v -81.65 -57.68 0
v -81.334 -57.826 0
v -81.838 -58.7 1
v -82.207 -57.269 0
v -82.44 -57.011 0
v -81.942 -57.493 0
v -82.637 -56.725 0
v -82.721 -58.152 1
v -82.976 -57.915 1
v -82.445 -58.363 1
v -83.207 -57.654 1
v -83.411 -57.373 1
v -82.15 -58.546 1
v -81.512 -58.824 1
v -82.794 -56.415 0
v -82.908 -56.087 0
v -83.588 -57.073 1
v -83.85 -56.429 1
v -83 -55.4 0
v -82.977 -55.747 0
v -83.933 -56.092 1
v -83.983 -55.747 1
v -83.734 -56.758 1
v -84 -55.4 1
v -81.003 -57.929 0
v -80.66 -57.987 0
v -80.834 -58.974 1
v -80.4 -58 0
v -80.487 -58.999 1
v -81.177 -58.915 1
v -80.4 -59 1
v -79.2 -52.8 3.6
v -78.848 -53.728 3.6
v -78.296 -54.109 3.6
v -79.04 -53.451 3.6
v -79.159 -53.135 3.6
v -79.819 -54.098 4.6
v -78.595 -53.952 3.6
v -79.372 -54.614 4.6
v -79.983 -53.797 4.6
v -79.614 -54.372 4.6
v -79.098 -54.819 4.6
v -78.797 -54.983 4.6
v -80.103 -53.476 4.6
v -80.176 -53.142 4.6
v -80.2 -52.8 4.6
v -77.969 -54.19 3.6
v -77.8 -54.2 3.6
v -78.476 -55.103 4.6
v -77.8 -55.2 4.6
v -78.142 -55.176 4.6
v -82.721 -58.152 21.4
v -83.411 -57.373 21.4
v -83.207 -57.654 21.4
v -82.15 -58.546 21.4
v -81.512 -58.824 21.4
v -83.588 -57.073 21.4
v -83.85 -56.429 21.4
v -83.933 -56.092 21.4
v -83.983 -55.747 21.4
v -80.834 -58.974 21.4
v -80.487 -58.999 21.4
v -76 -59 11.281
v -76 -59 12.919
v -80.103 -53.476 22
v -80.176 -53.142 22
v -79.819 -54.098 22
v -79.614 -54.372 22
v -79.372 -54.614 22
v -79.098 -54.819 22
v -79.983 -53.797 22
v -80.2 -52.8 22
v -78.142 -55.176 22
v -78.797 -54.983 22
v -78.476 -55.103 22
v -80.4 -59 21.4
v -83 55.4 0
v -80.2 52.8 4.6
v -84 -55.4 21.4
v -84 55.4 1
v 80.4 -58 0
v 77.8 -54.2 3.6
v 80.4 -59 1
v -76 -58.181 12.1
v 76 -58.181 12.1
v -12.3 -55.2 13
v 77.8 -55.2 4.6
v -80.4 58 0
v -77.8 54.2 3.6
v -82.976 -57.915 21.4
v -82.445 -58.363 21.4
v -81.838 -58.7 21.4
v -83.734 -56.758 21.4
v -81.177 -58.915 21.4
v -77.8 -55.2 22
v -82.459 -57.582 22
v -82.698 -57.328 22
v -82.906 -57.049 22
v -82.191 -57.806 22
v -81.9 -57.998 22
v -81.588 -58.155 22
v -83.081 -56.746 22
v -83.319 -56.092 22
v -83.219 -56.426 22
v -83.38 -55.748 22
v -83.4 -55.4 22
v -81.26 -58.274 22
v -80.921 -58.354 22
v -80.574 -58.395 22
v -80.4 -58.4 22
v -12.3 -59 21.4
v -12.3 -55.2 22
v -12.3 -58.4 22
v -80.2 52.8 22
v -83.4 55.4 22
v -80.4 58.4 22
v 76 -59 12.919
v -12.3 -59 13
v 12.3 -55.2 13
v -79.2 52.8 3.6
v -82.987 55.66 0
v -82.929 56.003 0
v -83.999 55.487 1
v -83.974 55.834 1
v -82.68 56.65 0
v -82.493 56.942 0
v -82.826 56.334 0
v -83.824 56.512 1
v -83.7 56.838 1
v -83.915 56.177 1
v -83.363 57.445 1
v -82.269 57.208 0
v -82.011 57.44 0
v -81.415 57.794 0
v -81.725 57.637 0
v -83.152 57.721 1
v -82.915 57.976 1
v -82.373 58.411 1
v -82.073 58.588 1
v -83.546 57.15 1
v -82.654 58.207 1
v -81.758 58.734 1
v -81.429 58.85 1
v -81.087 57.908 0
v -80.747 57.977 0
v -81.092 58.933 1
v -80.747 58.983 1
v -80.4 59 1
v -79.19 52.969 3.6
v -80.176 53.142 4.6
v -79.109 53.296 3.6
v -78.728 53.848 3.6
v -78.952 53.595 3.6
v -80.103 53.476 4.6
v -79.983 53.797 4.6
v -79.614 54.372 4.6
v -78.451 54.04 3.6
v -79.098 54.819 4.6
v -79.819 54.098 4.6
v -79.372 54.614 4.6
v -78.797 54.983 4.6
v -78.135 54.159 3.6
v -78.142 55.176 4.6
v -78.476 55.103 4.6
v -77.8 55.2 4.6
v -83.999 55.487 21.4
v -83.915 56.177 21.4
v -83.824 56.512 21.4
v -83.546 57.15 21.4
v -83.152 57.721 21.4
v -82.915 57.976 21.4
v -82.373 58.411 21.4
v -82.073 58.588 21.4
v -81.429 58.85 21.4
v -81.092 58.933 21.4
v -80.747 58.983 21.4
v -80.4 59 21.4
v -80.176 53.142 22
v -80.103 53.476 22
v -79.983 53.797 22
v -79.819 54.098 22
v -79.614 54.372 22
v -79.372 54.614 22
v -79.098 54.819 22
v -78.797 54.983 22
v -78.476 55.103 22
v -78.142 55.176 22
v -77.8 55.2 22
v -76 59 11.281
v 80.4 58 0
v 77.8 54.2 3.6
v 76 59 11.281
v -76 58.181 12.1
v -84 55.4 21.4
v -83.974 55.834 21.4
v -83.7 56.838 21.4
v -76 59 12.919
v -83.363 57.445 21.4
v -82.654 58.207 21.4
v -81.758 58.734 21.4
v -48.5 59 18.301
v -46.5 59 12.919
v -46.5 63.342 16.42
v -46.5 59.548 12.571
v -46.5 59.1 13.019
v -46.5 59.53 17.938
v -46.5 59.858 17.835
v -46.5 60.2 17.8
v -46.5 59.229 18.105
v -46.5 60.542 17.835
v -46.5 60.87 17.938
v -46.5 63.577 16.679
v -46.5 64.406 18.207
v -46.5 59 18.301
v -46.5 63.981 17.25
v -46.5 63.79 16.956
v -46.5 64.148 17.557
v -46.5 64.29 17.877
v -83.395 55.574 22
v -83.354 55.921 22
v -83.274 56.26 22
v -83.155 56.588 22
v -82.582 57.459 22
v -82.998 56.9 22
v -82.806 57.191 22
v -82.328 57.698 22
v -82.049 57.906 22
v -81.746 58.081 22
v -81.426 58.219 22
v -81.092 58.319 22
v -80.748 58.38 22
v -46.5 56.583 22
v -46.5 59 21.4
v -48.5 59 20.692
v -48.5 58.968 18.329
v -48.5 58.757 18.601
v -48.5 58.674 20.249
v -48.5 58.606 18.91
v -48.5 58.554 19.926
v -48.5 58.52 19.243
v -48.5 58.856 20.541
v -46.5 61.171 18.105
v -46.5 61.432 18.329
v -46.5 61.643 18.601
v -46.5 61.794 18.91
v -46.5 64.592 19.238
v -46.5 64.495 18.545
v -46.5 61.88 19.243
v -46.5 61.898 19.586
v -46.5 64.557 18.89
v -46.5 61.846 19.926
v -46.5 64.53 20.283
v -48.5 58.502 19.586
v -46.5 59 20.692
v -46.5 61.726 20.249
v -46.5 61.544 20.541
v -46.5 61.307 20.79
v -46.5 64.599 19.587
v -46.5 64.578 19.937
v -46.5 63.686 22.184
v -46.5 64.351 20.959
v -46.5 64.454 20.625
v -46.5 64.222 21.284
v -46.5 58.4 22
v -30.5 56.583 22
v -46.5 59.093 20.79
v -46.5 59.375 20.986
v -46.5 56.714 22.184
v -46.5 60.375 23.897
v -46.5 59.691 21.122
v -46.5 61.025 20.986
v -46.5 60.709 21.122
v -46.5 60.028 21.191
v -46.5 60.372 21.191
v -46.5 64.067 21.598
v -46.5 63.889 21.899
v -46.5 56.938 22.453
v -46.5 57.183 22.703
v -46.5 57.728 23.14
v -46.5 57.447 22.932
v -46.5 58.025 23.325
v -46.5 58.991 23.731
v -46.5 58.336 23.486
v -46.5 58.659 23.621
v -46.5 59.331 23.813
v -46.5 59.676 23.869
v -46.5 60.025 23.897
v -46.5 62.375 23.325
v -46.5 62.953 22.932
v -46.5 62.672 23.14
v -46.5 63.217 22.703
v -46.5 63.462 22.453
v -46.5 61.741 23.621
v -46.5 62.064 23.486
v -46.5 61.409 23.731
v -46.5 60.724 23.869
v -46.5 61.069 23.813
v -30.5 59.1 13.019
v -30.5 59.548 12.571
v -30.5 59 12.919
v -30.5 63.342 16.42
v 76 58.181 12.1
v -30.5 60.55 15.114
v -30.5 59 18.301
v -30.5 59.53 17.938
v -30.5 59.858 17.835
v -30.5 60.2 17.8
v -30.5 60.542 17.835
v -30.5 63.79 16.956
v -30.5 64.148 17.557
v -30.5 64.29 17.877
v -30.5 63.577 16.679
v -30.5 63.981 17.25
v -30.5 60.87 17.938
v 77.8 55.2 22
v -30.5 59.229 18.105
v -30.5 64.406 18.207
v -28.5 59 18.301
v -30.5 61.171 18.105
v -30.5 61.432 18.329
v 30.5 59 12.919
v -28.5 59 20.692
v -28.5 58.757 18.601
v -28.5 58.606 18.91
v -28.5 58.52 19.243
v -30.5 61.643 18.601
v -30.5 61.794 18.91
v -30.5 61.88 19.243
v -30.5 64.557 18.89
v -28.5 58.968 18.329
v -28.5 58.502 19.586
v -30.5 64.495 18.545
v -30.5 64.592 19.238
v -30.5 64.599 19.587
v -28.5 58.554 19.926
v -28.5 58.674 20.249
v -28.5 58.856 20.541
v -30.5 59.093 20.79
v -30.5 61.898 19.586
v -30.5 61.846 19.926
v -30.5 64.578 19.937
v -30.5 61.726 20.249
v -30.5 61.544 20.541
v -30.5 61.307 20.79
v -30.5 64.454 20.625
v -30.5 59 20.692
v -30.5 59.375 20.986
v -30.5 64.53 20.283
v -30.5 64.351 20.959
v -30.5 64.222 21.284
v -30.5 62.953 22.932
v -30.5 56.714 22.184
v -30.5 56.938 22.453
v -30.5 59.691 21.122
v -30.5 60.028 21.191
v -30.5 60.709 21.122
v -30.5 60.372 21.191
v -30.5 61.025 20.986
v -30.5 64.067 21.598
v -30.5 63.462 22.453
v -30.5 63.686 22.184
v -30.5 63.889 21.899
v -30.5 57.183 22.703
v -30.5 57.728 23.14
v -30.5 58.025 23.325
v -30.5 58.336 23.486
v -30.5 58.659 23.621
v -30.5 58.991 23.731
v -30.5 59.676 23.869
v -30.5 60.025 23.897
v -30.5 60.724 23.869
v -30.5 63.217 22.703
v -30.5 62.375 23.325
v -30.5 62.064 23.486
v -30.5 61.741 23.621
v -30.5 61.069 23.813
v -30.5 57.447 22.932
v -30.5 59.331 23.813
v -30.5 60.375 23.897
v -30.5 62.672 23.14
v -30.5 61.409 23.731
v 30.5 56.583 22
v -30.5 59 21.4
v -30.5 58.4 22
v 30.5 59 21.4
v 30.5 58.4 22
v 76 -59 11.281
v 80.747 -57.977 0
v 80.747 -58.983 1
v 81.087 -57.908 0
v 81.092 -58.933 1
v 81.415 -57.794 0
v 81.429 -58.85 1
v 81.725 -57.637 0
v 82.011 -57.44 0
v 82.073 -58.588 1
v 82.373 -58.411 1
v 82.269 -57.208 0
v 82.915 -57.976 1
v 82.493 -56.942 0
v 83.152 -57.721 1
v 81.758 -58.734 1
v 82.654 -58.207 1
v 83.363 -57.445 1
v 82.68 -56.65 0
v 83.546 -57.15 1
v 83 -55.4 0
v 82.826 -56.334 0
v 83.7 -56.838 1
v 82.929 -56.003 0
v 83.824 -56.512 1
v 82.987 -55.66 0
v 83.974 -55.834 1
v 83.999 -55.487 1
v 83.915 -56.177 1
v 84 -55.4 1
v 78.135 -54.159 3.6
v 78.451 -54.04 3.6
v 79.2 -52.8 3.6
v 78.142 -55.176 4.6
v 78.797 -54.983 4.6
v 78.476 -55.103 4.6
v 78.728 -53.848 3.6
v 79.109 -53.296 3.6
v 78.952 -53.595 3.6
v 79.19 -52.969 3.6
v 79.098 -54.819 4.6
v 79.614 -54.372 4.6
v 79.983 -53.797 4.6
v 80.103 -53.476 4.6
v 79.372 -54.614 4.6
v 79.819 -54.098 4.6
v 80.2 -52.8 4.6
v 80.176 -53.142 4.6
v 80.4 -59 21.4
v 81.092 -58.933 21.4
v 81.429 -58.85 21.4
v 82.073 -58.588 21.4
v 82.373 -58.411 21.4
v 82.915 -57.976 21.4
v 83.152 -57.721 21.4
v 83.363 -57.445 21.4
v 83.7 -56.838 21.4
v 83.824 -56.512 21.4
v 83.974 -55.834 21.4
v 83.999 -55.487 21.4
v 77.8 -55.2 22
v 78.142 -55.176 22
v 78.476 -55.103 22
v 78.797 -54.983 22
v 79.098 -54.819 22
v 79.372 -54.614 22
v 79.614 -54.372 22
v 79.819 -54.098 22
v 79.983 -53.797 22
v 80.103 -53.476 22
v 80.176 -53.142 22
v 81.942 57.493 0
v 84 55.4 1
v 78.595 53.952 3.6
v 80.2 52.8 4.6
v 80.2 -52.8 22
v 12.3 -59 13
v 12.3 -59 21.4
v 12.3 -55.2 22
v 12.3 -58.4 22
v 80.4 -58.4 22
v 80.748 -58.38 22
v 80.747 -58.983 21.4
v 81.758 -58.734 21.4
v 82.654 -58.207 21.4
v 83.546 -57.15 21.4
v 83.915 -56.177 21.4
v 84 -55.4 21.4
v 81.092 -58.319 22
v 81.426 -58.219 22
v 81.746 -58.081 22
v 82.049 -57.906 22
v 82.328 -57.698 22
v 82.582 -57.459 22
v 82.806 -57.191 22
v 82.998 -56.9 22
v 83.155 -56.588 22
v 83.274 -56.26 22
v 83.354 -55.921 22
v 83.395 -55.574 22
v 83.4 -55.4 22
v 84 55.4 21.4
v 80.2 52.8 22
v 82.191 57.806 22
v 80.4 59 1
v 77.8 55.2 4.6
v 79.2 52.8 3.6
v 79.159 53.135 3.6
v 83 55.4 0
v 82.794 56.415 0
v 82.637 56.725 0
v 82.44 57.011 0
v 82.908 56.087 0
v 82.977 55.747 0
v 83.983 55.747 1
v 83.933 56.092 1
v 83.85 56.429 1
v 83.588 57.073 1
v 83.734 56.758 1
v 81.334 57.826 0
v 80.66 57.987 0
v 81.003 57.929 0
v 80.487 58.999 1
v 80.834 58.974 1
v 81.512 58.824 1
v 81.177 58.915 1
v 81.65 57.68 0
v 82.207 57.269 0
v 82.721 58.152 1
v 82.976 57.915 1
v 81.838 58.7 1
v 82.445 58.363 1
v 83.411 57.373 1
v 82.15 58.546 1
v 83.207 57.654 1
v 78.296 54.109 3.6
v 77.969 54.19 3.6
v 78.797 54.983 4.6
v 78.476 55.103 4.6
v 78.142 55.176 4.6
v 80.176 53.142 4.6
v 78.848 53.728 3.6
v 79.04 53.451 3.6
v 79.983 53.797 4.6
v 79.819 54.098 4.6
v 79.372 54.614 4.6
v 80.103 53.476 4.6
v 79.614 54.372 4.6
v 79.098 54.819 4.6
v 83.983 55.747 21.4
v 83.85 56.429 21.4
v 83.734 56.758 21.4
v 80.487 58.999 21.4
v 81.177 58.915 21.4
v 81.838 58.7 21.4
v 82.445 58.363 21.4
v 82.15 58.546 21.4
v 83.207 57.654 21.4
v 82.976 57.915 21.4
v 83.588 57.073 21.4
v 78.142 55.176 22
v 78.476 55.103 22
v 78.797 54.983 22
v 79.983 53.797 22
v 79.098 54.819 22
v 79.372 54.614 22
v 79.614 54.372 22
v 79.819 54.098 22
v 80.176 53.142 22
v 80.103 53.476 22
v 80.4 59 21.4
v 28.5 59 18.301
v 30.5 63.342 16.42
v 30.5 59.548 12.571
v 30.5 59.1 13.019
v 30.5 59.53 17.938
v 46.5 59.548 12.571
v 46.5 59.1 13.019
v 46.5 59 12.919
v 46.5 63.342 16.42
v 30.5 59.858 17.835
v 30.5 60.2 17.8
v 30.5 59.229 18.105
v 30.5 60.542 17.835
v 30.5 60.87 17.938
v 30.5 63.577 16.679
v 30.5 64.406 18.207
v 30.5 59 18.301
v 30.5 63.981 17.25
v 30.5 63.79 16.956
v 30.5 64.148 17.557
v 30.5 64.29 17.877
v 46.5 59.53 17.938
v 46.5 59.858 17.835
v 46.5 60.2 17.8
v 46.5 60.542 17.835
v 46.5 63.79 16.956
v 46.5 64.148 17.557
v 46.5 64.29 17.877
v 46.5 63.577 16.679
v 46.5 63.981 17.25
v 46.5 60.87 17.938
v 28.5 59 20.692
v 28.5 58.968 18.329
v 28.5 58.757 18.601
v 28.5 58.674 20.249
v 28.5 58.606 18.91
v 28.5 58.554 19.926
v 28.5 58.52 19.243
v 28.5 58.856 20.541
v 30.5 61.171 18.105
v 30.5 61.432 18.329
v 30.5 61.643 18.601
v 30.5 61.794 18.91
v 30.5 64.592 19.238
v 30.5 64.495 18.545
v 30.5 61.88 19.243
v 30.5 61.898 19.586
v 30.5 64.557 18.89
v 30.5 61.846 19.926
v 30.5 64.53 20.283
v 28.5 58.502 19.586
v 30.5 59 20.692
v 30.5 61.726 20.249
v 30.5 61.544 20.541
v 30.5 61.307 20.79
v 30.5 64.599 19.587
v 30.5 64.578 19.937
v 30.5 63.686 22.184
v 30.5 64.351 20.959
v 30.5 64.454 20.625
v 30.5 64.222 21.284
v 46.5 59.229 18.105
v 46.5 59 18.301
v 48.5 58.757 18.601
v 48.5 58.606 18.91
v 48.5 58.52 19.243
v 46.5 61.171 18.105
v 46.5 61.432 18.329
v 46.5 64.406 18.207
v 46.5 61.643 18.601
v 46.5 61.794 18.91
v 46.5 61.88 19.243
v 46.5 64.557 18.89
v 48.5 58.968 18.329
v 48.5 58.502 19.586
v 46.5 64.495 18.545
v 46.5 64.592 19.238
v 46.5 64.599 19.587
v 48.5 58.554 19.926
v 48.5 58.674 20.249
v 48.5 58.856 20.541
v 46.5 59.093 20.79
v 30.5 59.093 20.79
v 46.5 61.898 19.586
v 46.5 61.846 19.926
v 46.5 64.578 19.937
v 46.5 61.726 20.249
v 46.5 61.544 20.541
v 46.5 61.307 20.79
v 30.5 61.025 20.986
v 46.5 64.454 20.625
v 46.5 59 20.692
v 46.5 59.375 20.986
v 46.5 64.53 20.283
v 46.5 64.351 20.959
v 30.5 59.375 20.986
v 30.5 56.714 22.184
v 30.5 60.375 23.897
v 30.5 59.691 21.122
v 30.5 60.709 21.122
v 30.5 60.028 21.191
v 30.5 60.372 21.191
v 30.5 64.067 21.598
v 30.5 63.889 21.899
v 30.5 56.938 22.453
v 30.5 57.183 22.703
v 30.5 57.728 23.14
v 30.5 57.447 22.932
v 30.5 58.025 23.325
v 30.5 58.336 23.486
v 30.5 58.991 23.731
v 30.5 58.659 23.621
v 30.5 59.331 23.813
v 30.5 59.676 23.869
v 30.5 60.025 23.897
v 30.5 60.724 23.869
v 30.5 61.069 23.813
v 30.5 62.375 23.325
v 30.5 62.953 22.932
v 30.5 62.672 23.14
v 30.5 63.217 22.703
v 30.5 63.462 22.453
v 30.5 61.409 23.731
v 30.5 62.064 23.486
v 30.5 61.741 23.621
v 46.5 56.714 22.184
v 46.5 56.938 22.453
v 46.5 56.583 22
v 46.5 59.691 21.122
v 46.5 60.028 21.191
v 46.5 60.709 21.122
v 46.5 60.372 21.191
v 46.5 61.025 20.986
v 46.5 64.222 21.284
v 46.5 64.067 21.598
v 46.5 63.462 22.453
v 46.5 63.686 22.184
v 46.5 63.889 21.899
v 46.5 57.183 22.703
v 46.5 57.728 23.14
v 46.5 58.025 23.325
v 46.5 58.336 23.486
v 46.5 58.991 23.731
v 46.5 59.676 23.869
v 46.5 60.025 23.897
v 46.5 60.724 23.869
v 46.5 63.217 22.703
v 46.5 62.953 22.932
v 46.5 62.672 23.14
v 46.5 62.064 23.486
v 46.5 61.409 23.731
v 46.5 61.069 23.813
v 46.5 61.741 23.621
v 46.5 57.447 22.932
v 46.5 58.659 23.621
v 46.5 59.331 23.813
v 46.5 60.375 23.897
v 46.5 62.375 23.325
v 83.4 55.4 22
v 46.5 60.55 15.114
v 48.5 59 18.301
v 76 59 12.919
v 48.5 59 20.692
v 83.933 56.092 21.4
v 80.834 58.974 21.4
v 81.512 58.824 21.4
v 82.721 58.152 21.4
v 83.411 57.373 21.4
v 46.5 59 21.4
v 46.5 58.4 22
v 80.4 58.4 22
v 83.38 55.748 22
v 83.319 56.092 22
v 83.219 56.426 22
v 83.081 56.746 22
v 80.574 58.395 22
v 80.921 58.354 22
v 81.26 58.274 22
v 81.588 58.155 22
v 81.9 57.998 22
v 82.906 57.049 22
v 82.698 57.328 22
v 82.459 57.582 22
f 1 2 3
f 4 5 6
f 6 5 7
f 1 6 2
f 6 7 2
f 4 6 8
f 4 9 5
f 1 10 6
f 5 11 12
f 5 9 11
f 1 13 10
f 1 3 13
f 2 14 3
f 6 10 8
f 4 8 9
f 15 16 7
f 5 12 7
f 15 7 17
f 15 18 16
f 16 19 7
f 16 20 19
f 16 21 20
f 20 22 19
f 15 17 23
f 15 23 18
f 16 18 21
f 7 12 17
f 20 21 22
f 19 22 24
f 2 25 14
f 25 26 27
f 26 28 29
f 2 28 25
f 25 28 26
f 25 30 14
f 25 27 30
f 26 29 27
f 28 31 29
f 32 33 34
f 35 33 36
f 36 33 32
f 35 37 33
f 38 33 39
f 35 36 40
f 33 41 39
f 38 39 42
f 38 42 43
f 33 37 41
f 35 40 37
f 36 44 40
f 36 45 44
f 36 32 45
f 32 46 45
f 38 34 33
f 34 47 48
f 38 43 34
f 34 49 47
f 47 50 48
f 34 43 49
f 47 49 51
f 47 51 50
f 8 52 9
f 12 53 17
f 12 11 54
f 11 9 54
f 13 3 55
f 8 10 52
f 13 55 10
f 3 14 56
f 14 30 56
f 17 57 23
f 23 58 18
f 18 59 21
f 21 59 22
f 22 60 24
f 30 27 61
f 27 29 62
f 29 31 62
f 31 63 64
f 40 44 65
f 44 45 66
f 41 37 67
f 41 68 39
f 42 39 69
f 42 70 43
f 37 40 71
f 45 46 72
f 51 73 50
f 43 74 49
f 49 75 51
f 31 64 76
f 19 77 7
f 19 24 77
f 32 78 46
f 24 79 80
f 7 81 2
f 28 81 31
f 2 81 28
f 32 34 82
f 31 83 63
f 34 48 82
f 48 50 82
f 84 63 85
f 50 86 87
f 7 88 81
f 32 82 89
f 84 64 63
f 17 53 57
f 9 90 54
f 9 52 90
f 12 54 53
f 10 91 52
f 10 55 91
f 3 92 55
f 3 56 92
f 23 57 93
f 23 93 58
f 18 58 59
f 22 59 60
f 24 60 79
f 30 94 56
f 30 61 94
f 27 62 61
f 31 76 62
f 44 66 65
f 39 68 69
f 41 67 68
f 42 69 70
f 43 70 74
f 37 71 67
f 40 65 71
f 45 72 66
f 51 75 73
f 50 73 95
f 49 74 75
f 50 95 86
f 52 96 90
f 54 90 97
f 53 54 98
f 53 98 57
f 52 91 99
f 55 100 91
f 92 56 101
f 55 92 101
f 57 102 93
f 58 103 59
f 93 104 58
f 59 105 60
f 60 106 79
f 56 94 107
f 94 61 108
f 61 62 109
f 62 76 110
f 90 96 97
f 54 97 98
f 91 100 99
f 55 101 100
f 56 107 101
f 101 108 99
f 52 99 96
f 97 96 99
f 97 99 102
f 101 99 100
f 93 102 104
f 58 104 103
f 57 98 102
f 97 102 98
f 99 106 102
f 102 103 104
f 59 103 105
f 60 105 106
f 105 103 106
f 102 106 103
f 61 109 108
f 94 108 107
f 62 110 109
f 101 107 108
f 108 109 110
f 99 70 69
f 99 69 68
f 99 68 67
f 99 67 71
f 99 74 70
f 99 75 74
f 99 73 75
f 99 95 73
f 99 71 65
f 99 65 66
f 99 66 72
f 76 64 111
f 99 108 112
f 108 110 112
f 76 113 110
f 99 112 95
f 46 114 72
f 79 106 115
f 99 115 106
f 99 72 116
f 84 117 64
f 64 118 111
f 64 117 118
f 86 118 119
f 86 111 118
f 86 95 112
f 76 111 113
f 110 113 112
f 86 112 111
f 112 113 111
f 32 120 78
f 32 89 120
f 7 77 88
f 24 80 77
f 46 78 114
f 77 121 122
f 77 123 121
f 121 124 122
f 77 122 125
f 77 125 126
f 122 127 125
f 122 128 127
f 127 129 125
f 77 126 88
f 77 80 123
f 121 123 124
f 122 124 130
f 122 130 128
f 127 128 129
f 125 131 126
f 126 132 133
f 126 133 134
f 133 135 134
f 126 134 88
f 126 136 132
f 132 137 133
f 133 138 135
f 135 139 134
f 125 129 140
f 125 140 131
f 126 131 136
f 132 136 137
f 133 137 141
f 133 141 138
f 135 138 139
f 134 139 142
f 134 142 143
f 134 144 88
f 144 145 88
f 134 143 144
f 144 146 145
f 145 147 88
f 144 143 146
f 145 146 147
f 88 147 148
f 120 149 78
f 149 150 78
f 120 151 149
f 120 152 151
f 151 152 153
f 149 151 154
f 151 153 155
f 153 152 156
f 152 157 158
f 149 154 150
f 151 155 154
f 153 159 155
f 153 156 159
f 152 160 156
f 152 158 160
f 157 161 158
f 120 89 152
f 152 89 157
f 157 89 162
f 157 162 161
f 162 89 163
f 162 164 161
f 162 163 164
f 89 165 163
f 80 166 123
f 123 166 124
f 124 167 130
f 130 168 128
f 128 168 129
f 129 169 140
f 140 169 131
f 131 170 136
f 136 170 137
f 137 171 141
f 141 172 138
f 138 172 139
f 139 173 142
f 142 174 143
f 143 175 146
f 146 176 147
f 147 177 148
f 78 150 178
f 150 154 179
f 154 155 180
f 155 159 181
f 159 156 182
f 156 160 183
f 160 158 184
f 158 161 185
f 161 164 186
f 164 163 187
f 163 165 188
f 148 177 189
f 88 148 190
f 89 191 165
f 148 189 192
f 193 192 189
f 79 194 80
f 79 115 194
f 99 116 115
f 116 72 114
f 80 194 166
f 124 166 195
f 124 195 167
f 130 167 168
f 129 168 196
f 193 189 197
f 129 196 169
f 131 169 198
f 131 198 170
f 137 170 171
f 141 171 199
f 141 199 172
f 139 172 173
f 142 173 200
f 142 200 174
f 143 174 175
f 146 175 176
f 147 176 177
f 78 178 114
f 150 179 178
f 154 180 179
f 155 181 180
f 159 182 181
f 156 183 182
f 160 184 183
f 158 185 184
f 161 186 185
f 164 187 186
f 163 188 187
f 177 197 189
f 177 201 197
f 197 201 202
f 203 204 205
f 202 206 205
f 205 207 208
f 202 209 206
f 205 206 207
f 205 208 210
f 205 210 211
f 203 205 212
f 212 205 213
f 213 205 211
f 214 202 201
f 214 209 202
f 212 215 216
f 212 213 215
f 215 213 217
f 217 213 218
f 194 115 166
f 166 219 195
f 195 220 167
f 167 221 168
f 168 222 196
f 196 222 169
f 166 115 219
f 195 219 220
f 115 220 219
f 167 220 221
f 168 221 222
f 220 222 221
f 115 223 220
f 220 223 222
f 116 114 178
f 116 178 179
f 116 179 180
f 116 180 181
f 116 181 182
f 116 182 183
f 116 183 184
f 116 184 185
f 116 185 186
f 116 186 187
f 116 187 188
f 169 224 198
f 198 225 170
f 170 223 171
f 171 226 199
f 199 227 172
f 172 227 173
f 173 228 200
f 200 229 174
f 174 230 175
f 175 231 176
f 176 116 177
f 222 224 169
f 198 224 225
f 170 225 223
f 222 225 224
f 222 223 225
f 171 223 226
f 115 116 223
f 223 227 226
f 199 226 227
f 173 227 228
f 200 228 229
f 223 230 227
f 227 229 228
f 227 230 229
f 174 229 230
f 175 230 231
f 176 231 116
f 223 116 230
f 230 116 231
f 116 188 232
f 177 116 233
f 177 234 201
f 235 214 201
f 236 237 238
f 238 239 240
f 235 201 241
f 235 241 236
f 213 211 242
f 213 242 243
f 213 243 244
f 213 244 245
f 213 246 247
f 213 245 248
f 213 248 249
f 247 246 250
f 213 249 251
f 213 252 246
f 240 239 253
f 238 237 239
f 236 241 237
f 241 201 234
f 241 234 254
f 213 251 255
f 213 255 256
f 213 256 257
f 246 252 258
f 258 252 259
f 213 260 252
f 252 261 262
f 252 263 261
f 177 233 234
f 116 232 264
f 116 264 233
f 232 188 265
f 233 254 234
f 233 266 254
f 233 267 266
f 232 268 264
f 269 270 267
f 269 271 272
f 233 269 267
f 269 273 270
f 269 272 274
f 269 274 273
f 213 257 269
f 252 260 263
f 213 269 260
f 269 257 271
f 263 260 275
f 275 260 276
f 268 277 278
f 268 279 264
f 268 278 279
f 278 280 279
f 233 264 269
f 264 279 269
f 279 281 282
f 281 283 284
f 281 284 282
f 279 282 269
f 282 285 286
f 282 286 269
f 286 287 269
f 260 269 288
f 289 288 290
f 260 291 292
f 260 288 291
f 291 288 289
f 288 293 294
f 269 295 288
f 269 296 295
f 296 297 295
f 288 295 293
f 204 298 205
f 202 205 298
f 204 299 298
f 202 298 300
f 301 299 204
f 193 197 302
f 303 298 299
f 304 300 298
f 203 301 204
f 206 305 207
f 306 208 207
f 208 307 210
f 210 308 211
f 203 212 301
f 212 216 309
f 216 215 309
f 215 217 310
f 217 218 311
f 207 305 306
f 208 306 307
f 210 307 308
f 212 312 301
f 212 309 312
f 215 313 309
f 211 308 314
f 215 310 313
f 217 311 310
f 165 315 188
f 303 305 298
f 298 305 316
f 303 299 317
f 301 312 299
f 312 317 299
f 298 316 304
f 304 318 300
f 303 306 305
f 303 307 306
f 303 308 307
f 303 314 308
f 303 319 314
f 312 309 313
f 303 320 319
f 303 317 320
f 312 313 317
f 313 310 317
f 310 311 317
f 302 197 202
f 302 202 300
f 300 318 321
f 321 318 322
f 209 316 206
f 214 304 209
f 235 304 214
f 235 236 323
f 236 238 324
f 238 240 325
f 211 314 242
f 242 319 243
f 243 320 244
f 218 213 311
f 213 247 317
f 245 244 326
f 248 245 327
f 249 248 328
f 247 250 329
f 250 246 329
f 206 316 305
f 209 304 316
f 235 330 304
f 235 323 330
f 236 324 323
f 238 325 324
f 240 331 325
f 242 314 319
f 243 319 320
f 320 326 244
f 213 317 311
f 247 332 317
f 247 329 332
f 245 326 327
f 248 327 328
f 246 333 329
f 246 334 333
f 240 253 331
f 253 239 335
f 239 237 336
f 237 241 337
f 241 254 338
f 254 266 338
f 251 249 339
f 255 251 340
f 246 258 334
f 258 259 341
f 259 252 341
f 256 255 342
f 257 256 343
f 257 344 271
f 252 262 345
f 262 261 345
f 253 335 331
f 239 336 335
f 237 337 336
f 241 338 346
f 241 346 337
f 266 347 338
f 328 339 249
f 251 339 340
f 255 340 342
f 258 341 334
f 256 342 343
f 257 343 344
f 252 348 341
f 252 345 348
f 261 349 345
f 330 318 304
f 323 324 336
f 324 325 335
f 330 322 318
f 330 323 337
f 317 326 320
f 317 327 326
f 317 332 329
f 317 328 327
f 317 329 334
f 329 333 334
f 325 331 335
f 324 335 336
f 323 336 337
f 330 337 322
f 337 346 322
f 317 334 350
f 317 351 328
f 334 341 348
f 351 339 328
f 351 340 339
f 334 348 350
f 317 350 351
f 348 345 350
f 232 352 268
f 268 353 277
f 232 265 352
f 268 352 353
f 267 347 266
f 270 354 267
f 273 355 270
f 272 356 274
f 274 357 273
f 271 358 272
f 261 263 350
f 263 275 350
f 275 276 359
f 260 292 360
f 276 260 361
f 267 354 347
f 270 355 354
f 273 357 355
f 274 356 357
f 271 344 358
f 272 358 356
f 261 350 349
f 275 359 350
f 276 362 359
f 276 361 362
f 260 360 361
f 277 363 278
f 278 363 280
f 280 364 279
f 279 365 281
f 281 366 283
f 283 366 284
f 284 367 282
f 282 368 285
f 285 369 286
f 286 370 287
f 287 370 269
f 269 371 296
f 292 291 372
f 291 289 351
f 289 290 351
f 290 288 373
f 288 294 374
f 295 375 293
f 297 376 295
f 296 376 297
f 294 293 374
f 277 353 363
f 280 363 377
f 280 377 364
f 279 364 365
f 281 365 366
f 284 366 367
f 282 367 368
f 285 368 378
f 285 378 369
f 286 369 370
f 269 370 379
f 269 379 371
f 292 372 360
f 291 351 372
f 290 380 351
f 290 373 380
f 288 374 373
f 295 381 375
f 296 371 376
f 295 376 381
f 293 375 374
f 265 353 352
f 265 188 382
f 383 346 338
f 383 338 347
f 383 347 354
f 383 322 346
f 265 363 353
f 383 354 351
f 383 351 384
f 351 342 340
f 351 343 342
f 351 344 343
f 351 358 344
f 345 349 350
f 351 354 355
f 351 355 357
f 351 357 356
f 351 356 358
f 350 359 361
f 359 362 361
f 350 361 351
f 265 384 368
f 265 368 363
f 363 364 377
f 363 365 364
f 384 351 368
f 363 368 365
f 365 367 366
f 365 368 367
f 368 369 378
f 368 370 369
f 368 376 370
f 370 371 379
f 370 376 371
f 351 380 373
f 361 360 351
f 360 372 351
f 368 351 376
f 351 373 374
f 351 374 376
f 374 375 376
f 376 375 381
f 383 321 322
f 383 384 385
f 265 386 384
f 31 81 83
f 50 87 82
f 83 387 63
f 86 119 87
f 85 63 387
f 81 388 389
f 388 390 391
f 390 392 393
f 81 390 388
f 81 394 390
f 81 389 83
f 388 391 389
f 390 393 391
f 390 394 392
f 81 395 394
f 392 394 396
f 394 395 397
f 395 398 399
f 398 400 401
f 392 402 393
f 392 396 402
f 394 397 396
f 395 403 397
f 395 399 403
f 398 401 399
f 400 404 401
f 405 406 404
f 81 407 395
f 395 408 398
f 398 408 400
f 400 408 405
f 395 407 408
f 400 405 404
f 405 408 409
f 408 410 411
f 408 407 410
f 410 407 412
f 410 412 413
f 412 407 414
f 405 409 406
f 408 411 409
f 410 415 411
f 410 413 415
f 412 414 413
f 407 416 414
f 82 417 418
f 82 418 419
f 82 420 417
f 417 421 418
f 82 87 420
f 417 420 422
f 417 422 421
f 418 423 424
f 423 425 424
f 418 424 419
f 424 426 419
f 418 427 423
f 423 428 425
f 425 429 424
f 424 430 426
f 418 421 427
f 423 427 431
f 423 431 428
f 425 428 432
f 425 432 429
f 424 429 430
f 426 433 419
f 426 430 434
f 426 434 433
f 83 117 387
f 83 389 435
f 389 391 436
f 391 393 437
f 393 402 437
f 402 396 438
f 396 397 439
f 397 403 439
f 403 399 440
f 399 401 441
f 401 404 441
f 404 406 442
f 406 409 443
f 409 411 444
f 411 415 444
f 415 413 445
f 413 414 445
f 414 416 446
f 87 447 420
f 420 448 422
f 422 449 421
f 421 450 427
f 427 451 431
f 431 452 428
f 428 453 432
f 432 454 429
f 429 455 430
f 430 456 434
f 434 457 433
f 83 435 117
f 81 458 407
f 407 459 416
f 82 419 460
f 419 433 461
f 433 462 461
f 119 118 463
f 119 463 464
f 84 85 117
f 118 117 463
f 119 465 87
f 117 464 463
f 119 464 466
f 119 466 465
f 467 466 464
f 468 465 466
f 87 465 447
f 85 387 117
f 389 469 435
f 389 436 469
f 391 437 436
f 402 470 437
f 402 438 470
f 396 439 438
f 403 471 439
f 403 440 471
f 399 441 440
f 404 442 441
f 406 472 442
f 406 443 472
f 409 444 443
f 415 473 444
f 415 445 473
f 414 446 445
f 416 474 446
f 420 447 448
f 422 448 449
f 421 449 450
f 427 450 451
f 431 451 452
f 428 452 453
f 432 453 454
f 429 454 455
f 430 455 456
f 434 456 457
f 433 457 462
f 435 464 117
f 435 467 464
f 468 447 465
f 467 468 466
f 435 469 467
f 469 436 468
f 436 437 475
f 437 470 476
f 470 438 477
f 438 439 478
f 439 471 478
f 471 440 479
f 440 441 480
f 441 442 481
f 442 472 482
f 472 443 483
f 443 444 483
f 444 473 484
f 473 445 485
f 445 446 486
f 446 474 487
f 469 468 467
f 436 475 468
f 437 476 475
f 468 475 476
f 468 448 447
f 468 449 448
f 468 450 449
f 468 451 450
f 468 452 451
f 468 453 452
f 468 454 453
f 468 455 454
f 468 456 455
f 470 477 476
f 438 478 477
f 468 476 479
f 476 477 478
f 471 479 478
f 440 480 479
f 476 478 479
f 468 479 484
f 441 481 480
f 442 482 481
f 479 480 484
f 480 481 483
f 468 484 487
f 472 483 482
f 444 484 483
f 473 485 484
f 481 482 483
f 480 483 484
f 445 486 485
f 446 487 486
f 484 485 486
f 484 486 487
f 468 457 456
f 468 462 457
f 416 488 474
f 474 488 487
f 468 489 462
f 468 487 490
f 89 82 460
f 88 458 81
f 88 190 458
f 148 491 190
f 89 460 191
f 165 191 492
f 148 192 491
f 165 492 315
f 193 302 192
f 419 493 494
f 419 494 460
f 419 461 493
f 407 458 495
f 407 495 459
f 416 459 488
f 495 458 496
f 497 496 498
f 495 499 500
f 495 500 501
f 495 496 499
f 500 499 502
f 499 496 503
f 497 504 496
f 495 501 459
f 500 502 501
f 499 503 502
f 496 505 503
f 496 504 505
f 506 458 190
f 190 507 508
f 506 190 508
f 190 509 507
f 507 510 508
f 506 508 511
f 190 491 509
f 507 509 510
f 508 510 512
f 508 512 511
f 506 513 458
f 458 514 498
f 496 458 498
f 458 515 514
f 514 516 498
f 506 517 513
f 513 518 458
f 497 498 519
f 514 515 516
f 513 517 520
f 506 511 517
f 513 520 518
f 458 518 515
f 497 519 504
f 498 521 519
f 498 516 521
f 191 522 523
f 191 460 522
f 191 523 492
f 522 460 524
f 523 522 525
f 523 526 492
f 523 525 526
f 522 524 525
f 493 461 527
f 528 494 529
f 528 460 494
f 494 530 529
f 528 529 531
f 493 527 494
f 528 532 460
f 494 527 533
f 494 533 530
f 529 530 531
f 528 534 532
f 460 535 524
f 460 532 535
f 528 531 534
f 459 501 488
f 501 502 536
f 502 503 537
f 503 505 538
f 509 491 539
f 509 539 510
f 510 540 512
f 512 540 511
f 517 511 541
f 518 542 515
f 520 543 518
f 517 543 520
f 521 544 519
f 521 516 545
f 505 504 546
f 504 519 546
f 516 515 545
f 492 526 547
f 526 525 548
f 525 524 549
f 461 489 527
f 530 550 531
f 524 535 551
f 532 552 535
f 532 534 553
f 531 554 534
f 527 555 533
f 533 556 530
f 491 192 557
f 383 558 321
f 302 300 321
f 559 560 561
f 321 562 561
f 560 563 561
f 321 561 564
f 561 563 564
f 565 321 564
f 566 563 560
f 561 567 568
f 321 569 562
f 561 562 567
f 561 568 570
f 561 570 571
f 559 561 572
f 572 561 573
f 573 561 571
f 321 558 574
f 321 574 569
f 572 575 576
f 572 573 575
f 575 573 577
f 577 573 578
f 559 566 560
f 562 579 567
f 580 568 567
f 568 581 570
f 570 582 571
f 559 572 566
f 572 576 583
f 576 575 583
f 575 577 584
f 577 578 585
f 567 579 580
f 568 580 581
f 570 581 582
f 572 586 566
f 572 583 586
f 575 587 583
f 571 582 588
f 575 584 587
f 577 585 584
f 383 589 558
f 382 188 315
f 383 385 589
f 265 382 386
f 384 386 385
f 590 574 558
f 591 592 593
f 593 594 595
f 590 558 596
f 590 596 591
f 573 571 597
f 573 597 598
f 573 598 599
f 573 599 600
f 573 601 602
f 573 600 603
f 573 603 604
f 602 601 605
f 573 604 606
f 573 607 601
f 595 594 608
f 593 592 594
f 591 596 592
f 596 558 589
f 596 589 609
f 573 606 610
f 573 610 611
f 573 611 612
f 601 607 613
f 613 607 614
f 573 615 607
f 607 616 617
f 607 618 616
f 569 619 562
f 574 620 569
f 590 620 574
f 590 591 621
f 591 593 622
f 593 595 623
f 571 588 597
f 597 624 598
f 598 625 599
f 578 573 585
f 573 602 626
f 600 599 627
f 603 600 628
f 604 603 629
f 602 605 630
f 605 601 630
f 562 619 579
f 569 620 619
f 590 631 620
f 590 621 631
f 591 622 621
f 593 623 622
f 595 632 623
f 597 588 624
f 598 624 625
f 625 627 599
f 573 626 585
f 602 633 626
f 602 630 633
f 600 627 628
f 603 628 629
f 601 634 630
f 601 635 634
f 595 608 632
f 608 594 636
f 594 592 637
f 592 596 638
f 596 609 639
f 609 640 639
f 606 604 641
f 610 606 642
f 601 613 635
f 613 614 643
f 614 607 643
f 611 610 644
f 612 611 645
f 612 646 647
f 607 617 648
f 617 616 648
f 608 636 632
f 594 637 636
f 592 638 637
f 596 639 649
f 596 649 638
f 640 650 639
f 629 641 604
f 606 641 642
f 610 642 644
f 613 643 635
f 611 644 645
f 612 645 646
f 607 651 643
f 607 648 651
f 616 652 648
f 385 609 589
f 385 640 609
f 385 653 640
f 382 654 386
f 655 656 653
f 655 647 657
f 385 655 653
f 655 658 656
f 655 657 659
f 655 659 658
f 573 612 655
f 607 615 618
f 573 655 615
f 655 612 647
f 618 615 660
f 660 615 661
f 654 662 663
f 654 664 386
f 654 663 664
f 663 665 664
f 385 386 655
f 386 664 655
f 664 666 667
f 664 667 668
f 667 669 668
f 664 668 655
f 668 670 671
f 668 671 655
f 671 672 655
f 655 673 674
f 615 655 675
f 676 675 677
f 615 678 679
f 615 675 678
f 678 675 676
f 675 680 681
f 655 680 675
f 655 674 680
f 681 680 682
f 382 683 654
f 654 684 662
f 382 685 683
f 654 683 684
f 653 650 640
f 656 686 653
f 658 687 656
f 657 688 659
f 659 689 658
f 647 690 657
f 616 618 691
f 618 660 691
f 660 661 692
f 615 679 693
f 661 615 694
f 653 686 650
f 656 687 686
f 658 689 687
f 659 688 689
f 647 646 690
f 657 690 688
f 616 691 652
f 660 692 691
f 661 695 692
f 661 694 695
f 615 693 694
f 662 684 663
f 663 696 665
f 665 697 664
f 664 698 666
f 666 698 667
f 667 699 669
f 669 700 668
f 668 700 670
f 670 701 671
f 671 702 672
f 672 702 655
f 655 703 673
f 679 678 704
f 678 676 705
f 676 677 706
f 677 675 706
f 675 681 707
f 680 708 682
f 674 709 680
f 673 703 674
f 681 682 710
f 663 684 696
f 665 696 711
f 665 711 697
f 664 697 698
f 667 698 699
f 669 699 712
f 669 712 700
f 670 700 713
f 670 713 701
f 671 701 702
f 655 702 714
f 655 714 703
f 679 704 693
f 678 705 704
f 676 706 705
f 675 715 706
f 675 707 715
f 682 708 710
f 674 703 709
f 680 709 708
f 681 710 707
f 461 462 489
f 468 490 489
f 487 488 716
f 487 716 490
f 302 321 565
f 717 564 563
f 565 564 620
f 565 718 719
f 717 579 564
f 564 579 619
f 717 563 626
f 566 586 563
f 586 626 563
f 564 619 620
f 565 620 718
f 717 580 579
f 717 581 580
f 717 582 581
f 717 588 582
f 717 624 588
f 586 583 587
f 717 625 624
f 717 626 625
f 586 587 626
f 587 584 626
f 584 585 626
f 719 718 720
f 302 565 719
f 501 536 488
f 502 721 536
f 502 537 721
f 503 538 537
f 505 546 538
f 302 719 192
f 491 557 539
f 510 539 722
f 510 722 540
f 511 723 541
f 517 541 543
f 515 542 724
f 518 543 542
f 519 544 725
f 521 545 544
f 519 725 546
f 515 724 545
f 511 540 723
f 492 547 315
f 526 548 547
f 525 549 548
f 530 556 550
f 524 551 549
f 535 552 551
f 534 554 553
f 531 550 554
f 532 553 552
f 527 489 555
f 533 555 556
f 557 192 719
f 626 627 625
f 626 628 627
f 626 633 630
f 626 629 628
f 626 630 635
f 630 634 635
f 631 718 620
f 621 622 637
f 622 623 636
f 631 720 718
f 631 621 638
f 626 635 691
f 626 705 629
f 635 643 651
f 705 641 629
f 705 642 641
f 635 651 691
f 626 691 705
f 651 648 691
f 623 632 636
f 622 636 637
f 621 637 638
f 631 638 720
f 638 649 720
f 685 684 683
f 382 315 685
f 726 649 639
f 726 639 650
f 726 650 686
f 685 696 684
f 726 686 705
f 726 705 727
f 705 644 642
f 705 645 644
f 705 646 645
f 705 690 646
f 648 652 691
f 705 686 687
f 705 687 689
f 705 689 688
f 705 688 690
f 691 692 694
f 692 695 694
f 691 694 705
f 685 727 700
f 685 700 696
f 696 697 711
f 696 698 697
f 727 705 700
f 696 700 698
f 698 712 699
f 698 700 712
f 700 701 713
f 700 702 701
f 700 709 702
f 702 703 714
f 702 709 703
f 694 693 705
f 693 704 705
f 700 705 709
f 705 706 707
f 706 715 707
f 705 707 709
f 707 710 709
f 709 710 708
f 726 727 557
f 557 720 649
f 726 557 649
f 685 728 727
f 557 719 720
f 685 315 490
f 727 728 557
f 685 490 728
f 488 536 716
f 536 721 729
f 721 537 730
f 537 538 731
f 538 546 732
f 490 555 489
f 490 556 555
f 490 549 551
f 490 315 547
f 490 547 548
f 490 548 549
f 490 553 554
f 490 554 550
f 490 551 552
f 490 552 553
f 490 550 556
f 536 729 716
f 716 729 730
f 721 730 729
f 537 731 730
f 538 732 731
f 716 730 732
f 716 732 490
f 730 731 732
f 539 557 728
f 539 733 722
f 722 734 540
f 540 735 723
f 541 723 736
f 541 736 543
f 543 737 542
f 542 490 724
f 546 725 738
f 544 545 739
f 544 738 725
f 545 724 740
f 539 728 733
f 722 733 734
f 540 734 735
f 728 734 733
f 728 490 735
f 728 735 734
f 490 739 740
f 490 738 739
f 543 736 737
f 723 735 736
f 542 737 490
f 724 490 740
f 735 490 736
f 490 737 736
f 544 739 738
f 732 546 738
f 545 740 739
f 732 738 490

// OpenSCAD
// file: _common.scad
// Hauntology Tabletop Print Kit — Shared Parametric Header (_common.scad)
// Ground rules (3D_BRIEF.md):
//   - Bed limit: 180 x 180 mm
//   - Layer height: 0.2 mm, nozzle: 0.4 mm, walls >= 1.6 mm
//   - Moving clearance: 0.3 mm; press/snap clearance: 0.15 mm
//   - Sticker pockets: 0.4 mm recessed with raised chamfered frame
//   - SG90 servo: 23 x 12.2 x 29 mm body, 32.5 mm flange, two M2 screws (27.5 mm c-c)
//   - ESP32 dev board: 55 x 28 mm footprint, USB cable exit

$fa = 4;
$fs = 0.35;

// --- Standard tolerances and print parameters ---
layer_h          = 0.2;
nozzle_d         = 0.4;
min_wall         = 1.6;
clear_move       = 0.3;
clear_fit        = 0.15;
sticker_depth    = 0.4;

// --- Relic Token interface dimensions ---
token_side_mm    = 40.0;
token_height_mm  = 6.0;
token_qr_mm      = 36.4; // 36 x 36 mm sticker + 0.2 mm margin per side
relic_base_d     = 33.0;
relic_Boss_d     = 23.4; // Underside boss on relic miniature
token_socket_d   = 24.0; // Matching 0.3 mm clearance socket on token top
token_socket_h   = 1.6;

// --- SG90 Micro Servo dimensions (including fit clearance) ---
sg90_body_w      = 23.2;
sg90_body_d      = 12.5;
sg90_body_h      = 22.5;
sg90_flange_w    = 32.8;
sg90_flange_h    = 2.6;
sg90_flange_z    = 16.0; // Distance from bottom of servo to underside of ears
sg90_hole_span   = 27.5;
sg90_m2_pilot_d  = 1.7;
sg90_shaft_off_x = -5.5; // Output shaft offset from body centre
sg90_boss_d      = 12.2;
sg90_cable_w     = 4.6;
sg90_cable_h     = 6.0;

// --- ESP32 DevKitC dimensions ---
esp32_w          = 55.6;
esp32_d          = 28.6;
esp32_h          = 14.0;
esp32_usb_w      = 12.0;
esp32_usb_h      = 7.0;

// --- Colour palette (from design/tokens.json) for preview ---
col_ink          = [11/255, 13/255, 16/255];
col_leather      = [107/255, 77/255, 51/255];
col_bone         = [233/255, 228/255, 216/255];
col_lantern      = [224/255, 164/255, 58/255];
col_ghost        = [159/255, 232/255, 208/255];
col_alarm        = [212/255, 96/255, 74/255];
col_silver       = [201/255, 201/255, 212/255];

// ============================================================================
// Geometric & Ornamental Primitives (Print-safe <= 45 deg overhangs)
// ============================================================================

// Rounded rectangle in 2D centered at origin
module rrect2d(w, d, r=2.0) {
  rc = min(r, min(w, d) / 2 - 0.05);
  offset(r = rc) square([w - 2*rc, d - 2*rc], center = true);
}

// Chamfered & rounded tabletop box sitting on z = 0 (prevents elephant's foot)
module chamfer_box(w, d, h, r=2.5, ch_bot=0.8, ch_top=0.8) {
  hull() {
    translate([0, 0, ch_bot])
      linear_extrude(height = max(0.2, h - ch_bot - ch_top))
        rrect2d(w, d, r);
    if (ch_bot > 0)
      linear_extrude(height = 0.05)
        rrect2d(w - 2*ch_bot, d - 2*ch_bot, max(0.4, r - ch_bot));
    if (ch_top > 0)
      translate([0, 0, h - 0.05])
        linear_extrude(height = 0.05)
          rrect2d(w - 2*ch_top, d - 2*ch_top, max(0.4, r - ch_top));
  }
}

// Recessed 0.4 mm rectangular sticker pocket (subtract from top/front face)
module sticker_pocket_rect(w, d, r=1.2, depth=sticker_depth) {
  translate([0, 0, -depth])
    linear_extrude(height = depth + 0.5)
      rrect2d(w, d, r);
}

// Recessed 0.4 mm circular/oval sticker pocket
module sticker_pocket_oval(rx, ry, depth=sticker_depth) {
  translate([0, 0, -depth])
    linear_extrude(height = depth + 0.5)
      scale([rx, ry]) circle(r = 1);
}

// Stepped circular tabletop miniature pedestal base that locks into a Relic Token
// Print-safe: underside uses a chamfered annular ring sitting flat on z = 0
// with an outer 33 mm skirt and inner 23.4 mm ring that mates with the Token top groove.
module relic_pedestal_base(h = 6.5) {
  difference() {
    union() {
      // Lower plinth ring with 45-deg elephant-foot bevel
      cylinder(h = 1.2, d1 = relic_base_d - 1.2, d2 = relic_base_d);
      translate([0, 0, 1.2])
        cylinder(h = 1.8, d = relic_base_d);
      // 45-degree ogee step taper
      translate([0, 0, 3.0])
        cylinder(h = 1.6, d1 = relic_base_d, d2 = relic_base_d - 3.2);
      // Upper collar bead
      translate([0, 0, 4.6])
        cylinder(h = 1.0, d = relic_base_d - 2.4);
      translate([0, 0, 5.6])
        cylinder(h = max(0.6, h - 5.6), d1 = relic_base_d - 2.4, d2 = relic_base_d - 4.0);
    }
    // Underside annular alignment groove (leaves a flat z=0 outer rim AND inner plug so zero supports are needed!)
    translate([0, 0, -0.05])
      difference() {
        cylinder(h = 1.25, d = relic_base_d - 4.4);
        cylinder(h = 1.30, d = relic_Boss_d);
      }
  }
}

// SG90 servo cavity (subtract from a cradle block)
module sg90_cutout(cable_dir = 1) {
  // Main body cavity
  translate([0, 0, -0.1])
    cube([sg90_body_w, sg90_body_d, sg90_body_h + 0.2], center = true);
  // Mounting ears slot
  translate([0, 0, sg90_flange_z * 0.5])
    cube([sg90_flange_w, sg90_body_d, sg90_flange_h + 0.4], center = true);
  // Two M2 pilot screw holes
  for (sx = [-1, 1]) {
    translate([sx * sg90_hole_span / 2, 0, 0])
      cylinder(h = sg90_body_h + 12, d = sg90_m2_pilot_d, center = true);
  }
  // Wire exit channel
  translate([cable_dir * (sg90_body_w / 2 + 4), 0, -sg90_body_h / 4])
    cube([10, sg90_cable_w, sg90_cable_h], center = true);
}

// Positive SG90 cradle mount block sitting on z = 0 (vertical servo orientation)
module sg90_cradle_block(wall = 2.8) {
  bw = sg90_flange_w + 2 * wall;
  bd = sg90_body_d + 2 * wall;
  bh = sg90_flange_z + sg90_flange_h;
  difference() {
    chamfer_box(bw, bd, bh, r = 2.0, ch_bot = 0.6, ch_top = 0.6);
    // Body slot
    translate([0, 0, bh / 2 + 1.6])
      cube([sg90_body_w, sg90_body_d, bh], center = true);
    // Ear recess at top
    translate([0, 0, bh - sg90_flange_h / 2 + 0.1])
      cube([sg90_flange_w, sg90_body_d, sg90_flange_h + 0.2], center = true);
    // M2 screw pilot holes
    for (sx = [-1, 1]) {
      translate([sx * sg90_hole_span / 2, 0, bh - 10])
        cylinder(h = 11, d = sg90_m2_pilot_d);
    }
    // Side wire exit channel
    translate([bw / 2 - wall / 2, 0, 6])
      cube([wall + 2, sg90_cable_w, 9], center = true);
  }
}

// Dovetail male tenon along Z axis (height h, neck n_w, flare f_w, depth d_len)
module dovetail_tenon(h, n_w = 6.0, f_w = 8.4, d_len = 4.0, ch = 0.4) {
  linear_extrude(height = h)
    polygon(points = [
      [-n_w/2, 0],
      [ n_w/2, 0],
      [ f_w/2, d_len - ch],
      [ f_w/2 - ch, d_len],
      [-f_w/2 + ch, d_len],
      [-f_w/2, d_len - ch]
    ]);
}

// Dovetail female mortise slot with 0.3 mm clearance
module dovetail_mortise(h, n_w = 6.0, f_w = 8.4, d_len = 4.0, clr = clear_move) {
  translate([0, -0.05, -0.05])
    linear_extrude(height = h + 0.1)
      polygon(points = [
        [-(n_w/2 + clr), 0],
        [ (n_w/2 + clr), 0],
        [ (f_w/2 + clr), d_len + clr + 0.05],
        [-(f_w/2 + clr), d_len + clr + 0.05]
      ]);
}

// Decorative plank groove lines on a vertical wall (width w, at z heights)
module plank_grooves_x(w, groove_d = 0.8, groove_h = 1.0) {
  rotate([45, 0, 0])
    cube([w, groove_d, groove_h], center = true);
}
// main file
// Hauntology Tabletop Print Kit — Prop #15: Relic Vault (Spring-Hinged Coffered Lid)
// Colour: Leather (#6b4d33)
// Size: 168 W x 118 D x 22 H mm
// Mechanism: Rear hinge barrels with torsion-spring stop; front mortise for Lantern clasp hasp
// Print orientation: Flat on outer lid top (Z = 0 in this file), zero supports.

include <_common.scad>

vlid_w = 168.0;
vlid_d = 118.0;
vlid_h = 22.0;

module prop_15_vault_lid() {
  difference() {
    union() {
      // 1. Main coffered lid shell (printed upside-down on flat top Z = 0)
      chamfer_box(vlid_w, vlid_d, vlid_h, r = 3.6, ch_bot = 1.0, ch_top = 0.6);

      // 2. Rear hinge barrels (spaced inboard of chest knuckles at +/-38.5 mm with 0.3 mm clearance)
      for (hx = [-38.5, 38.5]) {
        hull() {
          translate([hx, vlid_d / 2 + 1.2, vlid_h - 2.5])
            rotate([0, 90, 0])
              cylinder(h = 16.0, d = 8.8, center = true);
          translate([hx, vlid_d / 2 - 2.0, vlid_h - 10.0])
            cube([16.0, 2.0, 2.0], center = true);
        }
      }
    }

    // 3. Deep interior dome providing vertical clearance for the 6 standing Relics
    translate([0, 0, 3.6])
      chamfer_box(vlid_w - 7.6, vlid_d - 7.6, vlid_h, r = 2.4, ch_bot = 1.0, ch_top = 0);

    // 4. Front Clasp Hasp Slot (24.4 x 4.0 mm mortise where the Lantern clasp tongue locks in)
    translate([0, -vlid_d / 2 + 1.8, vlid_h - 4.0])
      cube([24.6, 4.2, 10.0], center = true);

    // 5. Plank V-grooves around skirt
    for (sy = [-1, 1])
      translate([0, sy * (vlid_d / 2 + 0.1), vlid_h * 0.55])
        rotate([45, 0, 0])
          cube([vlid_w - 16, 1.3, 1.3], center = true);

    // 6. Hinge Pin Bores (3.4 mm ID)
    for (hx = [-38.5, 38.5]) {
      translate([hx, vlid_d / 2 + 1.2, vlid_h - 2.5])
        rotate([0, 90, 0])
          cylinder(h = 20.0, d = 3.4, center = true);
    }
  }
}

color(col_leather) prop_15_vault_lid();
